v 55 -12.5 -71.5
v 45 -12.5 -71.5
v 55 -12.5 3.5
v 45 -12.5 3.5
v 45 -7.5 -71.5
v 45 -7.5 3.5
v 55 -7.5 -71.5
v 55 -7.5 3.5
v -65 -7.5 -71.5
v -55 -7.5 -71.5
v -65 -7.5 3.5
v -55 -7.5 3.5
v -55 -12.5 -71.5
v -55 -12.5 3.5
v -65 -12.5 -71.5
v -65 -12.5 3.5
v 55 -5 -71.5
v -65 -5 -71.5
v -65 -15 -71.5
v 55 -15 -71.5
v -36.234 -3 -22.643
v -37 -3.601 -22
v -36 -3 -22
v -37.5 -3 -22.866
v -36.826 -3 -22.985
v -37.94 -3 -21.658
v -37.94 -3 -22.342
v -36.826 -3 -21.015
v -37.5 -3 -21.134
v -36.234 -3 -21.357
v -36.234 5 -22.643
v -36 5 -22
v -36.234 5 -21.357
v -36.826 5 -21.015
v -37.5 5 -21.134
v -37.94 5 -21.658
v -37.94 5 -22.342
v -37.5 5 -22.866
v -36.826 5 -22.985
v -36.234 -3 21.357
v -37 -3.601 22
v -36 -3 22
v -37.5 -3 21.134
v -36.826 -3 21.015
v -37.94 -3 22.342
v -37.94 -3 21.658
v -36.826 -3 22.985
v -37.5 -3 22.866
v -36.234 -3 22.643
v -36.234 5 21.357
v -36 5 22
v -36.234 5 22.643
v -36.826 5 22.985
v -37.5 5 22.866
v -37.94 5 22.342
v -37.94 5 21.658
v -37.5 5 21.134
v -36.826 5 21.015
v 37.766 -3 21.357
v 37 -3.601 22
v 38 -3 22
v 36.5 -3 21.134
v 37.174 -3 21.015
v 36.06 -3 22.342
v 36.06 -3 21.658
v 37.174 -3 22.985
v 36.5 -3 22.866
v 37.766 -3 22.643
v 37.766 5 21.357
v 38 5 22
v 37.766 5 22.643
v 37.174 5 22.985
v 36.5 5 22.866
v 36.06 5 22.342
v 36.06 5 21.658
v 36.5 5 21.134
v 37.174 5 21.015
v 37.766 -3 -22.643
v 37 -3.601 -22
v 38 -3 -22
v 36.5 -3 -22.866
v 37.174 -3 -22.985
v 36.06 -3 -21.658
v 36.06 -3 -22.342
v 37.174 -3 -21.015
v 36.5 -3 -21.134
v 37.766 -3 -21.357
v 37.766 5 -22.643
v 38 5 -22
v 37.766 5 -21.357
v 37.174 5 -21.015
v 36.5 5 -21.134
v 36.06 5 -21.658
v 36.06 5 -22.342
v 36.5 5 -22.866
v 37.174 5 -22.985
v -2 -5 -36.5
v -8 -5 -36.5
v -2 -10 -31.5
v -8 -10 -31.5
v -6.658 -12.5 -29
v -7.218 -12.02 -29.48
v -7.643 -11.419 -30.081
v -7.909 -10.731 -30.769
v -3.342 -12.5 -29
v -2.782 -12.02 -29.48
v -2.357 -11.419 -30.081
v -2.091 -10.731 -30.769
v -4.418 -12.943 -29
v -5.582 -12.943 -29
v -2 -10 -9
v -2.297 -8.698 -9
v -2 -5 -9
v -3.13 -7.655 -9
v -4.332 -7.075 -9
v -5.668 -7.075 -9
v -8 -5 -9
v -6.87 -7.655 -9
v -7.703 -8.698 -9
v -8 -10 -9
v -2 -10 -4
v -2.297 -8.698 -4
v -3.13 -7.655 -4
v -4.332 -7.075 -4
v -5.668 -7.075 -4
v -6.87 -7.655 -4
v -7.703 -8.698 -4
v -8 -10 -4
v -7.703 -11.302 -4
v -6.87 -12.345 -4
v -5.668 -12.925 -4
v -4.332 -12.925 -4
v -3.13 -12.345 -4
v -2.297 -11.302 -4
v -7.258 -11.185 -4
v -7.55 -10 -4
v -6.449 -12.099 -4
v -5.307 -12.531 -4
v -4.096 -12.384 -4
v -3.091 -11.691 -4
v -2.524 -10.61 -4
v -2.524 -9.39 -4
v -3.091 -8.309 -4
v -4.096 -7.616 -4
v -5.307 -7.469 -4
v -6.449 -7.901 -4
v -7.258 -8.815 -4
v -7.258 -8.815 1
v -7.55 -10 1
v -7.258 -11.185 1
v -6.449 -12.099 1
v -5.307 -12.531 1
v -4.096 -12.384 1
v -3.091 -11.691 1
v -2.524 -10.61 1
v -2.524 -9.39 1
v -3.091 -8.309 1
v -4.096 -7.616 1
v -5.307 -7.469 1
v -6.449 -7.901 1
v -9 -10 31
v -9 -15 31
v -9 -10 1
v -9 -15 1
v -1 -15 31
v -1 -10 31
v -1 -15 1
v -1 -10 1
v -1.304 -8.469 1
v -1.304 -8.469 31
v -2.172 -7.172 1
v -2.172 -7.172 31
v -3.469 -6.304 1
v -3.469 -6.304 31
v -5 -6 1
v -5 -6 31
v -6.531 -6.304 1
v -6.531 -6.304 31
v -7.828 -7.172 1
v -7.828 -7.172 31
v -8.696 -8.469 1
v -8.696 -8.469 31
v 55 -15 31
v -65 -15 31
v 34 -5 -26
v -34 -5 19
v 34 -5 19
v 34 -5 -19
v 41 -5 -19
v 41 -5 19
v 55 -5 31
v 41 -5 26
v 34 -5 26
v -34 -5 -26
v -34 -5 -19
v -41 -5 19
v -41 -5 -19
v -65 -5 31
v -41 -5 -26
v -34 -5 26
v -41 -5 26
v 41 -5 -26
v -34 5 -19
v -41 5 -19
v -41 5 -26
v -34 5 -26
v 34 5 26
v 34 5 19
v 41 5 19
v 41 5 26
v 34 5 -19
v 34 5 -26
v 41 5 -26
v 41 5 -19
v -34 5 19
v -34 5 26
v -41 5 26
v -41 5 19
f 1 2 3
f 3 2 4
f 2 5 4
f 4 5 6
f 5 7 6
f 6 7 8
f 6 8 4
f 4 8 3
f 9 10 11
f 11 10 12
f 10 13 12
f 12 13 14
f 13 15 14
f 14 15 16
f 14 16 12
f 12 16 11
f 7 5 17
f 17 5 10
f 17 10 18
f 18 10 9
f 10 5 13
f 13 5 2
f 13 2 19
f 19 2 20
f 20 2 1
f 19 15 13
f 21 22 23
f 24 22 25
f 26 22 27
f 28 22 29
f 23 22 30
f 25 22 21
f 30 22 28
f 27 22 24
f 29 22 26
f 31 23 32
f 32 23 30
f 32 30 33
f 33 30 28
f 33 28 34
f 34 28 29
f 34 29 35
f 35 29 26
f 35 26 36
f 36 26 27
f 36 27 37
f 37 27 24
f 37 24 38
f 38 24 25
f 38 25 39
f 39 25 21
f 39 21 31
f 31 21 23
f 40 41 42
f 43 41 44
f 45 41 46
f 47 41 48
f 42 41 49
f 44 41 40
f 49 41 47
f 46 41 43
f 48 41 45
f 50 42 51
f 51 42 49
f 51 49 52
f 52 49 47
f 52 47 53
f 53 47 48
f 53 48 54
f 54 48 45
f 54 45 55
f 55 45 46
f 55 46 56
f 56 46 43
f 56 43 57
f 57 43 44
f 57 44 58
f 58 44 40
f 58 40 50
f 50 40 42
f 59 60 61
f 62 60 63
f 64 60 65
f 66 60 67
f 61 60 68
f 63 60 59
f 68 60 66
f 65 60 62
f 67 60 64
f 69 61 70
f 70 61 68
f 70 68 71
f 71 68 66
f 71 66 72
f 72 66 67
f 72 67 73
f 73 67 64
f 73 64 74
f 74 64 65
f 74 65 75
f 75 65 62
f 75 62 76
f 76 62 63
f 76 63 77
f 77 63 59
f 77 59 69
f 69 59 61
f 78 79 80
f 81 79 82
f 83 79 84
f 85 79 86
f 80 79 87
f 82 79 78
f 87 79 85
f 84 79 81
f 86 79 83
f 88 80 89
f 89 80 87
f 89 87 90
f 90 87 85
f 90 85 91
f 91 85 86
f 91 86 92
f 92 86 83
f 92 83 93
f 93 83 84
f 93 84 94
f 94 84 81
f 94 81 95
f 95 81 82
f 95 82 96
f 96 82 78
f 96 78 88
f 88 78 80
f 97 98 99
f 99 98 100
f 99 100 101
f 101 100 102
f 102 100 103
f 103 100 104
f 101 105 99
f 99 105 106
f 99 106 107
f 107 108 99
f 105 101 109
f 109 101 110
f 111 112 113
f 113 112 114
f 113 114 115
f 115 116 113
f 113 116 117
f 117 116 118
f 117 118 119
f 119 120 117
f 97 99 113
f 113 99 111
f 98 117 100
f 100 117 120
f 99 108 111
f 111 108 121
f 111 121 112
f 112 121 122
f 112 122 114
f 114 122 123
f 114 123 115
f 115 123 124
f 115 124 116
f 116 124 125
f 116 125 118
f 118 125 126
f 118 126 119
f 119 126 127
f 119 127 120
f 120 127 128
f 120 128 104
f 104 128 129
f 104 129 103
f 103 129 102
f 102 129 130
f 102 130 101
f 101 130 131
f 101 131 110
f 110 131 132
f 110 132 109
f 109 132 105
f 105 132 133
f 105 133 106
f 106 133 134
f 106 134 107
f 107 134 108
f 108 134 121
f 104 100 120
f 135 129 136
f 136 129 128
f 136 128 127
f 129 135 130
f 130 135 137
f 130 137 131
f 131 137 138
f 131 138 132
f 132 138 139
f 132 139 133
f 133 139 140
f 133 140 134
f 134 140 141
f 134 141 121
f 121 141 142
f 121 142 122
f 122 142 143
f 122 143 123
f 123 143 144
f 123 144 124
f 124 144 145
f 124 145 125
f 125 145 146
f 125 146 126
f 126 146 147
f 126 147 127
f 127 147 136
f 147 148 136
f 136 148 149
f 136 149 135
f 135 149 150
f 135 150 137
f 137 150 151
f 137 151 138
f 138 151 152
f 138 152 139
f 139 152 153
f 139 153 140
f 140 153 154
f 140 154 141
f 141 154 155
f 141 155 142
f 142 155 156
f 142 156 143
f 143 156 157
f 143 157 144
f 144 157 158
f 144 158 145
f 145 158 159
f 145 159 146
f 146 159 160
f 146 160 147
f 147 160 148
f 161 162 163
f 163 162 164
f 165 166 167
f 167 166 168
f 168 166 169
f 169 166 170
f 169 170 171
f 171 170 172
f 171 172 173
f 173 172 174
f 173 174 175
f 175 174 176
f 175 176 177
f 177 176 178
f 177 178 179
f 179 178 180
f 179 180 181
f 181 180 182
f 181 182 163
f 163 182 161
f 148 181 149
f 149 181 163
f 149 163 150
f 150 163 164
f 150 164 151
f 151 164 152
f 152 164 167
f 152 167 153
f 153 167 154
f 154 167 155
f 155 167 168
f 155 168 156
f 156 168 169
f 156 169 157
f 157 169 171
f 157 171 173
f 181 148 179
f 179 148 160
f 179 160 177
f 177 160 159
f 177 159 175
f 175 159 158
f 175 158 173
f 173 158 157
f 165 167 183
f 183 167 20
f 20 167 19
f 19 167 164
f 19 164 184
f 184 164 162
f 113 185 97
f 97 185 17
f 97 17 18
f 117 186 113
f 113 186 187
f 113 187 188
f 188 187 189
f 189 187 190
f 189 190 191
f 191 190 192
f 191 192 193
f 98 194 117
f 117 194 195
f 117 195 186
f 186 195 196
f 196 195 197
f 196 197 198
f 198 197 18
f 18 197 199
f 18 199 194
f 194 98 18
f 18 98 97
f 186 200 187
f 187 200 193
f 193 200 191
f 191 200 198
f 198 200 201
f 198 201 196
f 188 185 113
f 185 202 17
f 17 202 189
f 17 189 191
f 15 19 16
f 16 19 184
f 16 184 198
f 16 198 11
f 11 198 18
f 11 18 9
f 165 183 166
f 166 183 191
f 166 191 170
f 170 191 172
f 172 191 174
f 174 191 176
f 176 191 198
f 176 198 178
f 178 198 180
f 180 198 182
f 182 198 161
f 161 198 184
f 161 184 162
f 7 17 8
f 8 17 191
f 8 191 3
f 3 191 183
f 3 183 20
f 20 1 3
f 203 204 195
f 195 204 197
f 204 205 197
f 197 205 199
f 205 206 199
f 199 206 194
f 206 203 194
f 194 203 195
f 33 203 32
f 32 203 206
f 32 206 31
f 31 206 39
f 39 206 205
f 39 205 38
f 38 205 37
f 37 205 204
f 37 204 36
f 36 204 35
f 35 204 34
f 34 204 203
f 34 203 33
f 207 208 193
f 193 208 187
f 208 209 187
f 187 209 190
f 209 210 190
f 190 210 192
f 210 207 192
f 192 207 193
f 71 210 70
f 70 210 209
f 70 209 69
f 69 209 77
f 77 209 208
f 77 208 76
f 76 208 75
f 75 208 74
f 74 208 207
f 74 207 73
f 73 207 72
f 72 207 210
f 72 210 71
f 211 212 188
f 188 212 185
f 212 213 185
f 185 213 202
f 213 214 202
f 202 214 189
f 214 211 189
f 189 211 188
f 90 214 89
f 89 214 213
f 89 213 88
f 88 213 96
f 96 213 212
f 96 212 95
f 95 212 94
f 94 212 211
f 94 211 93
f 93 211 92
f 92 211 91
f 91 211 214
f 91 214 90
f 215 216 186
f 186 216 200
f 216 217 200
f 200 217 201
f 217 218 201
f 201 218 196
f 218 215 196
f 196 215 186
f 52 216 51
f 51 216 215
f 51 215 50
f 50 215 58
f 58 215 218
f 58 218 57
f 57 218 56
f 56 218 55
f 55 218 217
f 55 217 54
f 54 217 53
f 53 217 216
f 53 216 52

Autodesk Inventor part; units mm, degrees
ref_plane "YZ Plane" through (0, 0, 0) normal (1, 0, 0) x (0, 1, 0)
ref_plane "XZ Plane" through (0, 0, 0) normal (0, 1, 0) x (-1, 0, 0)
ref_plane "XY Plane" through (0, 0, 0) normal (0, 0, 1) x (1, 0, 0)
sketch "Sketch1" plane through (0, 0, 0) normal (0, 1, 0) x (-1, 0, 0)
  line L0 (34, 19) -> (-34, 19)
  line L1 (-34, 19) -> (-34, -19)
  line L2 (-34, -19) -> (34, -19)
  line L3 (34, -19) -> (34, 19)
  line L4 (34, 19) -> (-34, -19) construction
  line L5 (-34, 19) -> (34, -19) construction
  line L6 (41, 26) -> (-41, 26)
  line L7 (-41, 26) -> (-41, -26)
  line L8 (-41, -26) -> (41, -26)
  line L9 (41, -26) -> (41, 26)
  line L10 (41, 26) -> (-41, -26) construction
  line L11 (-41, 26) -> (41, -26) construction
  line L12 (-34, -19) -> (-41, -19)
  line L13 (-34, -19) -> (-34, -26)
  line L14 (-34, 19) -> (-41, 19)
  line L15 (-34, 19) -> (-34, 26)
  line L16 (34, -19) -> (34, -26)
  line L17 (34, -19) -> (41, -19)
  line L18 (34, 19) -> (41, 19)
  line L19 (34, 19) -> (34, 26)
  point P0 (0, 0)
  dimension "d0" = 68
  dimension "d1" = 38
  dimension "d2" = 82
  dimension "d3" = 52
extrude "Extrusion1" add sketch "Sketch1" along normal mid plane 10 contours L19 L6 L9 L18 | L14 L7 L6 L15 | L17 L9 L8 L16 | L13 L8 L7 L12
sketch "Sketch2" plane through (0, -5, 0) normal (0, -1, 0) x (1, 0, 0)
  line L0 (-65, -71.5) -> (55, -71.5)
  line L1 (55, -71.5) -> (55, 31)
  line L2 (55, 31) -> (-65, 31)
  line L3 (-65, 31) -> (-65, -71.5)
  line L4 (-34, 26) -> (-41, 26) projected
  point P0 (0, 0)
  dimension "d6" = 120
  dimension "d7" = 102.5
  dimension "d8" = 5
  dimension "d9" = 55
extrude "Extrusion2" add sketch "Sketch2" along normal blind 10
sketch "Sketch3" plane through (-65, -5, 31) normal (0, 0, 1) x (1, 0, 0)
  circle A0 centre (60, -5) radius 4
  line L0 (120, -10) -> (0, -10) projected
  line L1 (120, 0) -> (120, -10) projected
  circle A1 centre (60, -5) radius 2.55
  circle A2 centre (60, -5) radius 3
  line L2 (56, -5) -> (56, -10)
  line L3 (64, -5) -> (64, -10)
  line L4 (56, -10) -> (64, -10)
  point P0 (65, 5)
  point P1 (60, -10)
  dimension "d13" = 8
  dimension "d14" = 5
  dimension "d16" = 5.1
  dimension "d17" = 6
extrude "Extrusion3" cut sketch "Sketch3" against normal blind 30 contours A0 | L3 L0 L2 A0 | A1 | A2
extrude "Extrusion4" cut sketch "Sketch3" against normal blind 60 contours A1
ref_plane "Work Plane2" through (-65, -5, -4) normal (0, 0, 1) x (1, 0, 0)
sketch "Sketch5" plane through (-65, -5, -4) normal (0, 0, 1) x (1, 0, 0)
  circle A0 centre (60, -5) radius 3 projected
  point P0 (65, 5)
extrude "Extrusion5" cut sketch "Sketch5" against normal up to surface (25 mm away)
sketch "Sketch6" plane through (0, -5, 0) normal (0, 1, 0) x (1, 0, 0)
  line L0 (-2, 4) -> (-2, 29) projected
  line L1 (-2, 29) -> (-8, 29) projected
  line L2 (-8, 4) -> (-8, 29) projected
  line L3 (-2, 9) -> (-8, 9)
  point P0 (0, 0)
  dimension "d25" = 20
extrude "Extrusion6" cut sketch "Sketch6" against normal blind 5
fillet "Fillet1" [suppressed]
chamfer "Chamfer1" distance 7.5 angle 45 1 edges at (-5, -5, -29)
sketch "Sketch7" plane through (0, 5, 0) normal (0, 1, 0) x (1, 0, 0)
  circle A0 centre (37, 22) radius 1.6 projected
  circle A1 centre (37, -22) radius 1.6 projected
  circle A2 centre (-37, -22) radius 1.6 projected
  point P0 (0, 0)
  point P1 (-37, 22)
hole "Hole1" at (37, 5, -22) at (37, 5, 22) at (-37, 5, 22) at (-37, 5, -22) direction (0, -1, 0) diameter 2 depth 8 tip angle 118
sketch "Sketch8" plane through (0, -5, 0) normal (0, 1, 0) x (1, 0, 0)
  line L0 (-65, -31) -> (-55, -31)
  line L1 (-55, -31) -> (-55, -8)
  line L2 (-55, -8) -> (-65, -8)
  line L3 (-65, -8) -> (-65, -31)
  line L4 (-65, -31) -> (-65, 71.5) projected
  line L5 (-65, 71.5) -> (-55, 71.5)
  line L6 (-55, 71.5) -> (-55, 48.5)
  line L7 (-55, 48.5) -> (-65, 48.5)
  line L8 (-65, 48.5) -> (-65, 71.5)
  line L9 (55, -31) -> (-65, -31) projected
  line L10 (55, -31) -> (45, -31)
  line L11 (45, -31) -> (45, -8)
  line L12 (45, -8) -> (55, -8)
  line L13 (55, -8) -> (55, -31)
  point P0 (0, 0)
  dimension "d39" = 10
  dimension "d40" = 23
  dimension "d41" = 10
  dimension "d42" = 23
  dimension "d43" = 10
  dimension "d44" = 23
sketch "Sketch9" plane through (55, -5, -71.5) normal (0, 0, -1) x (-1, 0, 0)
  line L0 (120, 0) -> (120, -10) projected
  line L1 (120, -2.5) -> (110, -2.5)
  line L2 (110, -2.5) -> (110, -7.5)
  line L3 (110, -7.5) -> (120, -7.5)
  line L4 (120, -7.5) -> (120, -2.5)
  line L5 (0, 0) -> (0, -10) projected
  line L6 (0, -2.5) -> (10, -2.5)
  line L7 (10, -2.5) -> (10, -7.5)
  line L8 (10, -7.5) -> (0, -7.5)
  line L9 (0, -7.5) -> (0, -2.5)
  point P0 (55, 5)
  point P1 (110, -5)
  point P2 (120, -5)
  point P3 (10, -5)
  point P4 (0, -5)
  point P5 (0, -7.5)
  dimension "d45" = 5
  dimension "d46" = 10
  dimension "d47" = 10
  dimension "d48" = 5
extrude "Extrusion7" cut sketch "Sketch9" against normal blind 75
delete_face "Delete Face1" [suppressed]
properties part number "PCB_Housing_01_V3"
